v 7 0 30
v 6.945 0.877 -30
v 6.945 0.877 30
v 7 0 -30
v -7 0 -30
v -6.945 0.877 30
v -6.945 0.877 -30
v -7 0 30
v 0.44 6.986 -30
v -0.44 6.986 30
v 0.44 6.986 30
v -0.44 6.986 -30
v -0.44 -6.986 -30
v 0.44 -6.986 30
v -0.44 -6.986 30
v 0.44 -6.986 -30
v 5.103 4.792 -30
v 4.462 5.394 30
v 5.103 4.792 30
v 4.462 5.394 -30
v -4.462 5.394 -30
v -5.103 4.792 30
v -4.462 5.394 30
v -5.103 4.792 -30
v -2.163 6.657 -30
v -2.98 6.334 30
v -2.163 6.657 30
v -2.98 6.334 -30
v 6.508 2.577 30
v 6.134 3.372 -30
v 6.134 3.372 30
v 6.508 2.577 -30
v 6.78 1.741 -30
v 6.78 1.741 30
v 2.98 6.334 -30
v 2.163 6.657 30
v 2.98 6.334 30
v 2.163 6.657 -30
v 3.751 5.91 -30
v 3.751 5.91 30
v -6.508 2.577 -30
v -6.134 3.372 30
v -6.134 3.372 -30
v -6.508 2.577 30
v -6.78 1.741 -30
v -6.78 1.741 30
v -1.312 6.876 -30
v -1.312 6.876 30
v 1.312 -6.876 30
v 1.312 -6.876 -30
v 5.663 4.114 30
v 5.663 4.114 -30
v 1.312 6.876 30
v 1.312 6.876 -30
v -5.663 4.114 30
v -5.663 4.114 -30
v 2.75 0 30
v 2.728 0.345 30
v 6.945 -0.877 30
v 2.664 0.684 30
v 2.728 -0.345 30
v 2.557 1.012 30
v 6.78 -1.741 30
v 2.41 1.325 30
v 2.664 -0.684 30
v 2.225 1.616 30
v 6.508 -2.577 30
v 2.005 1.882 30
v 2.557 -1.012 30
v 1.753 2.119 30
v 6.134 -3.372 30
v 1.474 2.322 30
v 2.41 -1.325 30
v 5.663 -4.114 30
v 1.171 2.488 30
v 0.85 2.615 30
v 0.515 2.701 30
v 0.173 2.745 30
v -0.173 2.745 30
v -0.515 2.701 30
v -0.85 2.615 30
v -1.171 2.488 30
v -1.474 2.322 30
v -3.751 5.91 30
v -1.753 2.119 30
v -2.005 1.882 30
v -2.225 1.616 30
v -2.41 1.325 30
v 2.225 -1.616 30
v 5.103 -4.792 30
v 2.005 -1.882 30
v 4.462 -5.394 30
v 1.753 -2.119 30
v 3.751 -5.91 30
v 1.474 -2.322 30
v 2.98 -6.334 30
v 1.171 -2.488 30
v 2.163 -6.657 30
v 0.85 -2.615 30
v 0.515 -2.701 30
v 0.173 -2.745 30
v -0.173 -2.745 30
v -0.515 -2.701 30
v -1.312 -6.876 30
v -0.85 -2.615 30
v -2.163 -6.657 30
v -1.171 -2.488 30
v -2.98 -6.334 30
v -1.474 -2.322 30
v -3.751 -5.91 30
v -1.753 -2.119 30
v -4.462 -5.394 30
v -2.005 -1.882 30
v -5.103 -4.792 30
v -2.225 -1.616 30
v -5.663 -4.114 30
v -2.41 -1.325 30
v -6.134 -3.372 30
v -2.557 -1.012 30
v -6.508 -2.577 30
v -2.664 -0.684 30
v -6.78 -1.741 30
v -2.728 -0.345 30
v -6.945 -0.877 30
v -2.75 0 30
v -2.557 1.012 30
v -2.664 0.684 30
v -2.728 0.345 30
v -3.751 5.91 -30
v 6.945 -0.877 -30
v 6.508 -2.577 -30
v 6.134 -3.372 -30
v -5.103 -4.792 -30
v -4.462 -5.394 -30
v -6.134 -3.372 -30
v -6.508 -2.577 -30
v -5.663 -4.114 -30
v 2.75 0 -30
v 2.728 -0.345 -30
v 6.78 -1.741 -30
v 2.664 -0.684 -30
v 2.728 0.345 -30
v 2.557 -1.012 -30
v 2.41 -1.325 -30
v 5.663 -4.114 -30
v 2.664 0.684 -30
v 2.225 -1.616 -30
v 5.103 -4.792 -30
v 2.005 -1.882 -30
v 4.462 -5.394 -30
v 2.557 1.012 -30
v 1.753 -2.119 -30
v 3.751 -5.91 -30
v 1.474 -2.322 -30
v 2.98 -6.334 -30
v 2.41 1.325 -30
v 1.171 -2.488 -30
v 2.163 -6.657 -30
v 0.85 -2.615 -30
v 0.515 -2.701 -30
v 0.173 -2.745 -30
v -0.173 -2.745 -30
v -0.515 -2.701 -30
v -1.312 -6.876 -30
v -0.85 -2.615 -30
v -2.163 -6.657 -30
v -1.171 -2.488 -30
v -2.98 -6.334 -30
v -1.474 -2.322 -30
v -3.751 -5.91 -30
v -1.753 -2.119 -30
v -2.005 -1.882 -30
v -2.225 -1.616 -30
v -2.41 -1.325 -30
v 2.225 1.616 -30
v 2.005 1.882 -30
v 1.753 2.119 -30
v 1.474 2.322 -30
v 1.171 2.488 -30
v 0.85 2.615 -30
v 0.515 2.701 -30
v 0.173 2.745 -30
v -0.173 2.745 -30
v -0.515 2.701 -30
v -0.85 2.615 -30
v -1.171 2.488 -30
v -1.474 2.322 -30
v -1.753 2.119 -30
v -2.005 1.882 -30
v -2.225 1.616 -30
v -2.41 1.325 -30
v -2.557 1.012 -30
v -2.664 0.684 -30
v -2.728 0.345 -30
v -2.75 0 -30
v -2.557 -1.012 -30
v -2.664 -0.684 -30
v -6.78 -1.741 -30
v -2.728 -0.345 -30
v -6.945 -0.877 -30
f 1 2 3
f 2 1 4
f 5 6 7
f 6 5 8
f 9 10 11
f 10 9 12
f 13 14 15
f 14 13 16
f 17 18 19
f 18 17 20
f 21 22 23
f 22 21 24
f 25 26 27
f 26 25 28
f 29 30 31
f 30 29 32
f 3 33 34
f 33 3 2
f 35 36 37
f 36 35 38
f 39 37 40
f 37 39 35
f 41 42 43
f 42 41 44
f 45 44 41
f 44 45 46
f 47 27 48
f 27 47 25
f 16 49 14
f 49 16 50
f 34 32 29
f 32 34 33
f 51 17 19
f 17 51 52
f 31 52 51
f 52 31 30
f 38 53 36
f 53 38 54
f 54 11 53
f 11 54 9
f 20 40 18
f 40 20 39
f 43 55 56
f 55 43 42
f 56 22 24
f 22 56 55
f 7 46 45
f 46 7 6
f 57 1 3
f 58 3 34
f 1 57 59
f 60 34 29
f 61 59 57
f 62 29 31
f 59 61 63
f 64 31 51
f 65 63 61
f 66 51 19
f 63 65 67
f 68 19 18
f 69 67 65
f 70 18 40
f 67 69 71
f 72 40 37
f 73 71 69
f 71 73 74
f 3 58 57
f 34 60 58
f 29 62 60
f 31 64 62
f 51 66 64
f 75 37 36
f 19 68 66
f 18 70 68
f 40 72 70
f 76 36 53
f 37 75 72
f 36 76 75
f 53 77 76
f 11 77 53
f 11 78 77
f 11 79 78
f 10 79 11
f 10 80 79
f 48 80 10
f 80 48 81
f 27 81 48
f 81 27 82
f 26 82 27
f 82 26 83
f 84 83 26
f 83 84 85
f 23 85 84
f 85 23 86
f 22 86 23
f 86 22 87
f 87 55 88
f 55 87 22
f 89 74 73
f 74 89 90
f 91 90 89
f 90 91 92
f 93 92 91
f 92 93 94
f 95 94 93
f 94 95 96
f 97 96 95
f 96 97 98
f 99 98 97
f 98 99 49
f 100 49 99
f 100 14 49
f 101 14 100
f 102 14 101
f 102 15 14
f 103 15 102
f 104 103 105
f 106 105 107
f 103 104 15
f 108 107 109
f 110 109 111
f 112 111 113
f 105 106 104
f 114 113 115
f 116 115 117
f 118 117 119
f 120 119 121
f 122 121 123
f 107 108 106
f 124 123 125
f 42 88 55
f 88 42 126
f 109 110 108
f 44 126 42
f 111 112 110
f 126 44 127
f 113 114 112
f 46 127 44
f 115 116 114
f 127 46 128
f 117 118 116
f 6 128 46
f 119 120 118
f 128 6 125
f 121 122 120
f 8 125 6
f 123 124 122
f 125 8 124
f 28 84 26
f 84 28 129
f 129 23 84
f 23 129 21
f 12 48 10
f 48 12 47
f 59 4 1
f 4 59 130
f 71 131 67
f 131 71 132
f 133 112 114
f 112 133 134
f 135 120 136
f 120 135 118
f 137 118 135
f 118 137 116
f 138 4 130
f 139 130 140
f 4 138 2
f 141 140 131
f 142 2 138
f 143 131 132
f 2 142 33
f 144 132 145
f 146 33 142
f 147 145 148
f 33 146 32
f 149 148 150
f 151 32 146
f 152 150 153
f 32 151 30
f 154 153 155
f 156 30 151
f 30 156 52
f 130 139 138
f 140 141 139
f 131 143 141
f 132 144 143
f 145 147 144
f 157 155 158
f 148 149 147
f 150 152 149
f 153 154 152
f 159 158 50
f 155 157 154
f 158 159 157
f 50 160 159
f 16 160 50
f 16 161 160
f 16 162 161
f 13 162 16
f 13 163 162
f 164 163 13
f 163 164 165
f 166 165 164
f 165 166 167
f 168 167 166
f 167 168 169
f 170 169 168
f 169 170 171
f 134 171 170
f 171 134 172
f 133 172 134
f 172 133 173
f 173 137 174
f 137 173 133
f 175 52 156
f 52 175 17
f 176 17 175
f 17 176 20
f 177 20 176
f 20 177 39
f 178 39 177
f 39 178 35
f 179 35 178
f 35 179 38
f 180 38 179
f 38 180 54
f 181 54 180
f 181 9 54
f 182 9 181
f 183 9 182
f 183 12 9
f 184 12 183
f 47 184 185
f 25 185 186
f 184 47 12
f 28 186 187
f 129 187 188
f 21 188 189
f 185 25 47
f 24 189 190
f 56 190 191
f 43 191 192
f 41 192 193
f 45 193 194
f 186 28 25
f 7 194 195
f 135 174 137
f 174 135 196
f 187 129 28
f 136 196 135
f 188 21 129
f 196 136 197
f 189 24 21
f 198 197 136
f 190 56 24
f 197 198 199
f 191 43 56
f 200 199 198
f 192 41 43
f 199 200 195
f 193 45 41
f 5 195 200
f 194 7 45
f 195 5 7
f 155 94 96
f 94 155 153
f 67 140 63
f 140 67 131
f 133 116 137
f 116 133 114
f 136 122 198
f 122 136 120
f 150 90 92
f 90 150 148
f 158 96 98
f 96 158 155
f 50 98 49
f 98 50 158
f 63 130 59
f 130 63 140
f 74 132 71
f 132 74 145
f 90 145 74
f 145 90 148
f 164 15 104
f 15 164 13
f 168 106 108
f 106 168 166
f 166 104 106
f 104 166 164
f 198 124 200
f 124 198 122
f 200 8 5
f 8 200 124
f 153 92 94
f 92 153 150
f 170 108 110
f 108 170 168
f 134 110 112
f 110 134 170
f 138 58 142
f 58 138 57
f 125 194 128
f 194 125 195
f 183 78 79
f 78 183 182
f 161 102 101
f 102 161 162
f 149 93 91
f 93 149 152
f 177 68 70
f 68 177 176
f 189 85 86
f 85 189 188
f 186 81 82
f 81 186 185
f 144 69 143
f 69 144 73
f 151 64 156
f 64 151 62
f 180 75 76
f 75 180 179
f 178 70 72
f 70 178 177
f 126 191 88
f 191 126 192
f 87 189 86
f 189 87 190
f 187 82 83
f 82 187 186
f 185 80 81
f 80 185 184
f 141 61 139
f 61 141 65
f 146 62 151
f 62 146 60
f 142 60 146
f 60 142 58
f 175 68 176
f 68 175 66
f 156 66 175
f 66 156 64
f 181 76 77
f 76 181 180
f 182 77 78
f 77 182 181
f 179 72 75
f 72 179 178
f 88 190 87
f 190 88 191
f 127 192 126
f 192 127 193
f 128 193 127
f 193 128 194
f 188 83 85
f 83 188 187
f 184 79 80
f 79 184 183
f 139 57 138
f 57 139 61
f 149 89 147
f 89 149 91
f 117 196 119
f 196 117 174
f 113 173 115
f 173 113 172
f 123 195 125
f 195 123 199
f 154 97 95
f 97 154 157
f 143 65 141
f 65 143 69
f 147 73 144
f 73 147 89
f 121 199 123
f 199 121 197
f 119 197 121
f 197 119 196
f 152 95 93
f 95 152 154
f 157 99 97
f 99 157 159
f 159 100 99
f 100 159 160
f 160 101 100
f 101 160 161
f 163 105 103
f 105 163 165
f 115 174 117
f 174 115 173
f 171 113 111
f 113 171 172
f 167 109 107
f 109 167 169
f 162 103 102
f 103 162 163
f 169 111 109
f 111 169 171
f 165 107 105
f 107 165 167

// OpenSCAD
$fn = 50;


difference() {
	union() {
		translate(v = [0, 0, -30.0000000000]) {
			cylinder(h = 60, r = 7.0000000000);
		}
	}
	union() {
		translate(v = [0, 0, -100.0000000000]) {
			cylinder(h = 200, r = 2.7500000000);
		}
	}
}
